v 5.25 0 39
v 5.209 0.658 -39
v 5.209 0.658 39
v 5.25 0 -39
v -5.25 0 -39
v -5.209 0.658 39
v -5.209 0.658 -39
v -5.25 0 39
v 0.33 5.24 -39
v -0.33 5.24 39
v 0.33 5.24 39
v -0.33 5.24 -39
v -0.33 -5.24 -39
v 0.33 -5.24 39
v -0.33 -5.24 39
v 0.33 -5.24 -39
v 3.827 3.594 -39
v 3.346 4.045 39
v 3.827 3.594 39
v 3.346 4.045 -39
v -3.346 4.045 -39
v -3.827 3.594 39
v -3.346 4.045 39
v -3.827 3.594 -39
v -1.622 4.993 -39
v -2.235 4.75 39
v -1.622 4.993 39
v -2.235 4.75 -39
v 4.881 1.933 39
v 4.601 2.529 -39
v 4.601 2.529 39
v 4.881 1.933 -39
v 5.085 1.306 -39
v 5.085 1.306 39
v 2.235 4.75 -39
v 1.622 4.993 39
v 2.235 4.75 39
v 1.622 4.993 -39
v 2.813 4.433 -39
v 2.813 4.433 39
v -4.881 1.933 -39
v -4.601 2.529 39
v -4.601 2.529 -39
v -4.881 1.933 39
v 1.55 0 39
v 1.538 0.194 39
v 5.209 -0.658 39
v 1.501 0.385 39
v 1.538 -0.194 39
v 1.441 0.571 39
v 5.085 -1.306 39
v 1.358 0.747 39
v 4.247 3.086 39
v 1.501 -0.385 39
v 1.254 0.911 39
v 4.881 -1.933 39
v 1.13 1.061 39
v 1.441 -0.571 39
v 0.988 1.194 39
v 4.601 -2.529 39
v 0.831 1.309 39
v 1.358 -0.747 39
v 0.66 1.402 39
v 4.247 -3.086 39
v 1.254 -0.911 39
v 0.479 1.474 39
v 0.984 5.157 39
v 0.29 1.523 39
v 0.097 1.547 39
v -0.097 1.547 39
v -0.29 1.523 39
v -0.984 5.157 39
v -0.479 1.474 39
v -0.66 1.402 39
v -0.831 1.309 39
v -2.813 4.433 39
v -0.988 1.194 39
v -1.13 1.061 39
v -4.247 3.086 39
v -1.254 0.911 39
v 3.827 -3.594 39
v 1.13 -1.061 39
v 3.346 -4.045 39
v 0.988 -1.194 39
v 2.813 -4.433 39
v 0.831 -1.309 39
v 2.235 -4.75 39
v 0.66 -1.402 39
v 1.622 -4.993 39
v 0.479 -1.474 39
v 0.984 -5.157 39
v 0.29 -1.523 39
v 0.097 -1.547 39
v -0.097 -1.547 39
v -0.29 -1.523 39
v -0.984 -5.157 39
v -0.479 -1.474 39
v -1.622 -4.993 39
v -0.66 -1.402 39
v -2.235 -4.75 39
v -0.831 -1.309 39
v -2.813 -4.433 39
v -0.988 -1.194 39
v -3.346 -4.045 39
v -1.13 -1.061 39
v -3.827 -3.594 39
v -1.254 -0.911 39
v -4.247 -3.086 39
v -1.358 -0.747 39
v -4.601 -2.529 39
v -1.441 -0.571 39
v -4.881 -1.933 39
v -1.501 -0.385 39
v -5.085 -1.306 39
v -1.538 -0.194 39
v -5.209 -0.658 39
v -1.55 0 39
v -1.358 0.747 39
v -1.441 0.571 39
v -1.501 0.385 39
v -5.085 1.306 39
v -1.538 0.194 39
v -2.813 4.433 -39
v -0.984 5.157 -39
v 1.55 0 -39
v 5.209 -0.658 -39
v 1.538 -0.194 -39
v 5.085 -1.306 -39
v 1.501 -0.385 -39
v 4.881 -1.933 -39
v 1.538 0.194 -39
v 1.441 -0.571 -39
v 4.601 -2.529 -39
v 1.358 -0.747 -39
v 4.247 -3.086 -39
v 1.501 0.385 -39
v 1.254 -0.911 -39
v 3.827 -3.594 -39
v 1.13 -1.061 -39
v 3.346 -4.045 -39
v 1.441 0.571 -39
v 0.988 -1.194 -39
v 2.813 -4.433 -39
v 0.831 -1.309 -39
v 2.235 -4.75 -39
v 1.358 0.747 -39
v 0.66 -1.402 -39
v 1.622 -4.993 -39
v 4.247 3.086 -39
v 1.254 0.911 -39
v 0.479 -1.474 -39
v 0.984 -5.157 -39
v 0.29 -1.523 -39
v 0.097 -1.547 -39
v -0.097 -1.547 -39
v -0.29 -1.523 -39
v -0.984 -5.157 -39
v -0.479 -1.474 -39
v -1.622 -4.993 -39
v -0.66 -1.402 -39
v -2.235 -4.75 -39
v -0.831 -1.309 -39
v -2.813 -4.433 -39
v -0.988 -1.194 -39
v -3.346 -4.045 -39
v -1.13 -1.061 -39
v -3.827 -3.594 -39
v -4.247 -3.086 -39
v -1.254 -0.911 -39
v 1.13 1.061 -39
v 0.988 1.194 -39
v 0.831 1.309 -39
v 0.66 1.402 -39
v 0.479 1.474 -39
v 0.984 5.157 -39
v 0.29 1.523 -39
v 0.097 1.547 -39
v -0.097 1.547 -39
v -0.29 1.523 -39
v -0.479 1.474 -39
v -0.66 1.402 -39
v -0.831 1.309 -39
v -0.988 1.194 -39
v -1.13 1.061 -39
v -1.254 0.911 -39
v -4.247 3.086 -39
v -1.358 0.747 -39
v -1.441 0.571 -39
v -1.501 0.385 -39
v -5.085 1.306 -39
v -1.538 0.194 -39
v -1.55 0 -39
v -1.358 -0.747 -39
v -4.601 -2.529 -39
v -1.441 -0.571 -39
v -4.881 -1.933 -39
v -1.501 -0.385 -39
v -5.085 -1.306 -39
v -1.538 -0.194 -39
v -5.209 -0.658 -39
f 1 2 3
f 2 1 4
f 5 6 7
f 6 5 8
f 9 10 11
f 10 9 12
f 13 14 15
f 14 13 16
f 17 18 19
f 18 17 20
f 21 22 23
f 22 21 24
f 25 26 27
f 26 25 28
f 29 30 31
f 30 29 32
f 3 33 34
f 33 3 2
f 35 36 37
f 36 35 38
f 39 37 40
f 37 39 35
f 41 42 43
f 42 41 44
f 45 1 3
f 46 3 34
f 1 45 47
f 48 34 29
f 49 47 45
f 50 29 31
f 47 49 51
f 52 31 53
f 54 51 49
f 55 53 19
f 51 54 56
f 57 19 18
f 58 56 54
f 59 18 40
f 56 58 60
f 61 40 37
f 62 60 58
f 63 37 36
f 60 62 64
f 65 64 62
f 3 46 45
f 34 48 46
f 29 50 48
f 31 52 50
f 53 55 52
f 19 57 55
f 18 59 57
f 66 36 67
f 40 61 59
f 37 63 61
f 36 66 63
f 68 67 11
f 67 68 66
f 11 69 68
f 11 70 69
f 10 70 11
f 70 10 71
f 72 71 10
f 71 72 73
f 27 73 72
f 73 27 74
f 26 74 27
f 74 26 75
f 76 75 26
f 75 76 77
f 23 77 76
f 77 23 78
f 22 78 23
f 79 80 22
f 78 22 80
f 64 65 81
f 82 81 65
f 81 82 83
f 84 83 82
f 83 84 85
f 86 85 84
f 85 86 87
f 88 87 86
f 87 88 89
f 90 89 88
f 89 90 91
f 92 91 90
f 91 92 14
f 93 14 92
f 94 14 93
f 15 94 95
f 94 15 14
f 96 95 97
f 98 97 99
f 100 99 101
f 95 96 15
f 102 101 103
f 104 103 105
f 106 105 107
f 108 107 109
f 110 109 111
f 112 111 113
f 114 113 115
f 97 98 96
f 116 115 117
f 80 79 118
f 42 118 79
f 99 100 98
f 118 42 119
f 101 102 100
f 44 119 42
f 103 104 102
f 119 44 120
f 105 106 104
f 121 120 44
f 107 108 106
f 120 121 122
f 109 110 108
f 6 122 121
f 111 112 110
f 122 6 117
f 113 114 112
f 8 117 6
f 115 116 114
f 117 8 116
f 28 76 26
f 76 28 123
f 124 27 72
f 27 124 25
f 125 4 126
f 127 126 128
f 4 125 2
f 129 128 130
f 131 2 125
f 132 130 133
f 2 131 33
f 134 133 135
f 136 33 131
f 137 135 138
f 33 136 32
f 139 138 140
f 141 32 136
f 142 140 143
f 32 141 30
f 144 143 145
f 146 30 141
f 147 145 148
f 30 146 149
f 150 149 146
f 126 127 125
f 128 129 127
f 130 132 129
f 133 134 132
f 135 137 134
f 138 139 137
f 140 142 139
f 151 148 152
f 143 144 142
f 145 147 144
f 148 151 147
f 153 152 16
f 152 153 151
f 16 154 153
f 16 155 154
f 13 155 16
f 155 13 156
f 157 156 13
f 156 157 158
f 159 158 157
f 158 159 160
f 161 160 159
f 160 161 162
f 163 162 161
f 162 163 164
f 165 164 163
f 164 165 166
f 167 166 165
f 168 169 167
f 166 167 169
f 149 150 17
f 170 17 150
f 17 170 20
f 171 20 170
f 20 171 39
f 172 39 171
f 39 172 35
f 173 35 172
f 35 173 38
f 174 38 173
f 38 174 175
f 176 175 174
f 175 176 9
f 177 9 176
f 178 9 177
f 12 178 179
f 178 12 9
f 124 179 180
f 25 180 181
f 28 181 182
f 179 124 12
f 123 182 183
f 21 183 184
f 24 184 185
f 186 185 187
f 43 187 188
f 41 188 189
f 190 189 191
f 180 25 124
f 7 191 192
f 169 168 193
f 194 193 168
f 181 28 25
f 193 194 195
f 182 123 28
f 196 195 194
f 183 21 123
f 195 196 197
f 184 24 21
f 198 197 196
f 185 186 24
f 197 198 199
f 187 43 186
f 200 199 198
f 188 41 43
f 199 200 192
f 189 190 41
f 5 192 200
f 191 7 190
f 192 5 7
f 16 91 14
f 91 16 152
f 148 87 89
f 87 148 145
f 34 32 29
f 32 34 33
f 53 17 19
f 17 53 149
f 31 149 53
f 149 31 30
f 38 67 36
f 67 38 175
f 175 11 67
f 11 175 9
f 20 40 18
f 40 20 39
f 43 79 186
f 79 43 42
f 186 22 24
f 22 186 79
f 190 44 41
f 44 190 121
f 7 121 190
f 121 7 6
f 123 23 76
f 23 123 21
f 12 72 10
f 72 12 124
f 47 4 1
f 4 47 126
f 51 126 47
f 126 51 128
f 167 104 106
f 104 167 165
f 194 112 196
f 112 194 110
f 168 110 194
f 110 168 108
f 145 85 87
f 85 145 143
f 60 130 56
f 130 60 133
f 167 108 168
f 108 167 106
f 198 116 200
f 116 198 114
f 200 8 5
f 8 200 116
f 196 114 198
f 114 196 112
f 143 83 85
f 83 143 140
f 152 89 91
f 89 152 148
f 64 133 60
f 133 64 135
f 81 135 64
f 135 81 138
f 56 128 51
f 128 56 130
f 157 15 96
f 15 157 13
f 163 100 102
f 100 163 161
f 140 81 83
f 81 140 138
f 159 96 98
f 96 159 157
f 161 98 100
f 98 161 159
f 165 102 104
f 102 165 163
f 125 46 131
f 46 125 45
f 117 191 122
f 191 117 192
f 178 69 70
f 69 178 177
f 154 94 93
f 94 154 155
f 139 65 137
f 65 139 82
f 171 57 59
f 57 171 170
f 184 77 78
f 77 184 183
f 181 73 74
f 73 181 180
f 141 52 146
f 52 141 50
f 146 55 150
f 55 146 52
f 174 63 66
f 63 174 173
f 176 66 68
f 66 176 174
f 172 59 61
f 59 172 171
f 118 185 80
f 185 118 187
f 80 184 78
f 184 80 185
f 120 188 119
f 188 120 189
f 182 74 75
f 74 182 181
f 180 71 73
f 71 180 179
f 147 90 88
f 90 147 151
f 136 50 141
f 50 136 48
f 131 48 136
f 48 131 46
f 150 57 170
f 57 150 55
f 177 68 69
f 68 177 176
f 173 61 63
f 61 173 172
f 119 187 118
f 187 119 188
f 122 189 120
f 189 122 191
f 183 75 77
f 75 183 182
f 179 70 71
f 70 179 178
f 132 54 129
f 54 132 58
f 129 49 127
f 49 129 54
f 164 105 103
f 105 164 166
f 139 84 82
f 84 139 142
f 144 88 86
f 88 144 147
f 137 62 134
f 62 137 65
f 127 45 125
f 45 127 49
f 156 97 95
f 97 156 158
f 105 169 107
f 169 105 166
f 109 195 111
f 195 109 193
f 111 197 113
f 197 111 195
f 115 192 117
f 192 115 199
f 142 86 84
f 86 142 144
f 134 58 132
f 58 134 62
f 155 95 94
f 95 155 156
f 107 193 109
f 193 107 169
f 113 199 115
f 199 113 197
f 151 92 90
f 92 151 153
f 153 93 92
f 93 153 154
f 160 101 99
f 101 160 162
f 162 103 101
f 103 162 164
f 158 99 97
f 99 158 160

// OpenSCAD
$fn = 50;


difference() {
	union() {
		translate(v = [0, 0, -39.0000000000]) {
			cylinder(h = 78, r = 5.2500000000);
		}
	}
	union() {
		translate(v = [0, 0, -100.0000000000]) {
			cylinder(h = 200, r = 1.5500000000);
		}
	}
}
